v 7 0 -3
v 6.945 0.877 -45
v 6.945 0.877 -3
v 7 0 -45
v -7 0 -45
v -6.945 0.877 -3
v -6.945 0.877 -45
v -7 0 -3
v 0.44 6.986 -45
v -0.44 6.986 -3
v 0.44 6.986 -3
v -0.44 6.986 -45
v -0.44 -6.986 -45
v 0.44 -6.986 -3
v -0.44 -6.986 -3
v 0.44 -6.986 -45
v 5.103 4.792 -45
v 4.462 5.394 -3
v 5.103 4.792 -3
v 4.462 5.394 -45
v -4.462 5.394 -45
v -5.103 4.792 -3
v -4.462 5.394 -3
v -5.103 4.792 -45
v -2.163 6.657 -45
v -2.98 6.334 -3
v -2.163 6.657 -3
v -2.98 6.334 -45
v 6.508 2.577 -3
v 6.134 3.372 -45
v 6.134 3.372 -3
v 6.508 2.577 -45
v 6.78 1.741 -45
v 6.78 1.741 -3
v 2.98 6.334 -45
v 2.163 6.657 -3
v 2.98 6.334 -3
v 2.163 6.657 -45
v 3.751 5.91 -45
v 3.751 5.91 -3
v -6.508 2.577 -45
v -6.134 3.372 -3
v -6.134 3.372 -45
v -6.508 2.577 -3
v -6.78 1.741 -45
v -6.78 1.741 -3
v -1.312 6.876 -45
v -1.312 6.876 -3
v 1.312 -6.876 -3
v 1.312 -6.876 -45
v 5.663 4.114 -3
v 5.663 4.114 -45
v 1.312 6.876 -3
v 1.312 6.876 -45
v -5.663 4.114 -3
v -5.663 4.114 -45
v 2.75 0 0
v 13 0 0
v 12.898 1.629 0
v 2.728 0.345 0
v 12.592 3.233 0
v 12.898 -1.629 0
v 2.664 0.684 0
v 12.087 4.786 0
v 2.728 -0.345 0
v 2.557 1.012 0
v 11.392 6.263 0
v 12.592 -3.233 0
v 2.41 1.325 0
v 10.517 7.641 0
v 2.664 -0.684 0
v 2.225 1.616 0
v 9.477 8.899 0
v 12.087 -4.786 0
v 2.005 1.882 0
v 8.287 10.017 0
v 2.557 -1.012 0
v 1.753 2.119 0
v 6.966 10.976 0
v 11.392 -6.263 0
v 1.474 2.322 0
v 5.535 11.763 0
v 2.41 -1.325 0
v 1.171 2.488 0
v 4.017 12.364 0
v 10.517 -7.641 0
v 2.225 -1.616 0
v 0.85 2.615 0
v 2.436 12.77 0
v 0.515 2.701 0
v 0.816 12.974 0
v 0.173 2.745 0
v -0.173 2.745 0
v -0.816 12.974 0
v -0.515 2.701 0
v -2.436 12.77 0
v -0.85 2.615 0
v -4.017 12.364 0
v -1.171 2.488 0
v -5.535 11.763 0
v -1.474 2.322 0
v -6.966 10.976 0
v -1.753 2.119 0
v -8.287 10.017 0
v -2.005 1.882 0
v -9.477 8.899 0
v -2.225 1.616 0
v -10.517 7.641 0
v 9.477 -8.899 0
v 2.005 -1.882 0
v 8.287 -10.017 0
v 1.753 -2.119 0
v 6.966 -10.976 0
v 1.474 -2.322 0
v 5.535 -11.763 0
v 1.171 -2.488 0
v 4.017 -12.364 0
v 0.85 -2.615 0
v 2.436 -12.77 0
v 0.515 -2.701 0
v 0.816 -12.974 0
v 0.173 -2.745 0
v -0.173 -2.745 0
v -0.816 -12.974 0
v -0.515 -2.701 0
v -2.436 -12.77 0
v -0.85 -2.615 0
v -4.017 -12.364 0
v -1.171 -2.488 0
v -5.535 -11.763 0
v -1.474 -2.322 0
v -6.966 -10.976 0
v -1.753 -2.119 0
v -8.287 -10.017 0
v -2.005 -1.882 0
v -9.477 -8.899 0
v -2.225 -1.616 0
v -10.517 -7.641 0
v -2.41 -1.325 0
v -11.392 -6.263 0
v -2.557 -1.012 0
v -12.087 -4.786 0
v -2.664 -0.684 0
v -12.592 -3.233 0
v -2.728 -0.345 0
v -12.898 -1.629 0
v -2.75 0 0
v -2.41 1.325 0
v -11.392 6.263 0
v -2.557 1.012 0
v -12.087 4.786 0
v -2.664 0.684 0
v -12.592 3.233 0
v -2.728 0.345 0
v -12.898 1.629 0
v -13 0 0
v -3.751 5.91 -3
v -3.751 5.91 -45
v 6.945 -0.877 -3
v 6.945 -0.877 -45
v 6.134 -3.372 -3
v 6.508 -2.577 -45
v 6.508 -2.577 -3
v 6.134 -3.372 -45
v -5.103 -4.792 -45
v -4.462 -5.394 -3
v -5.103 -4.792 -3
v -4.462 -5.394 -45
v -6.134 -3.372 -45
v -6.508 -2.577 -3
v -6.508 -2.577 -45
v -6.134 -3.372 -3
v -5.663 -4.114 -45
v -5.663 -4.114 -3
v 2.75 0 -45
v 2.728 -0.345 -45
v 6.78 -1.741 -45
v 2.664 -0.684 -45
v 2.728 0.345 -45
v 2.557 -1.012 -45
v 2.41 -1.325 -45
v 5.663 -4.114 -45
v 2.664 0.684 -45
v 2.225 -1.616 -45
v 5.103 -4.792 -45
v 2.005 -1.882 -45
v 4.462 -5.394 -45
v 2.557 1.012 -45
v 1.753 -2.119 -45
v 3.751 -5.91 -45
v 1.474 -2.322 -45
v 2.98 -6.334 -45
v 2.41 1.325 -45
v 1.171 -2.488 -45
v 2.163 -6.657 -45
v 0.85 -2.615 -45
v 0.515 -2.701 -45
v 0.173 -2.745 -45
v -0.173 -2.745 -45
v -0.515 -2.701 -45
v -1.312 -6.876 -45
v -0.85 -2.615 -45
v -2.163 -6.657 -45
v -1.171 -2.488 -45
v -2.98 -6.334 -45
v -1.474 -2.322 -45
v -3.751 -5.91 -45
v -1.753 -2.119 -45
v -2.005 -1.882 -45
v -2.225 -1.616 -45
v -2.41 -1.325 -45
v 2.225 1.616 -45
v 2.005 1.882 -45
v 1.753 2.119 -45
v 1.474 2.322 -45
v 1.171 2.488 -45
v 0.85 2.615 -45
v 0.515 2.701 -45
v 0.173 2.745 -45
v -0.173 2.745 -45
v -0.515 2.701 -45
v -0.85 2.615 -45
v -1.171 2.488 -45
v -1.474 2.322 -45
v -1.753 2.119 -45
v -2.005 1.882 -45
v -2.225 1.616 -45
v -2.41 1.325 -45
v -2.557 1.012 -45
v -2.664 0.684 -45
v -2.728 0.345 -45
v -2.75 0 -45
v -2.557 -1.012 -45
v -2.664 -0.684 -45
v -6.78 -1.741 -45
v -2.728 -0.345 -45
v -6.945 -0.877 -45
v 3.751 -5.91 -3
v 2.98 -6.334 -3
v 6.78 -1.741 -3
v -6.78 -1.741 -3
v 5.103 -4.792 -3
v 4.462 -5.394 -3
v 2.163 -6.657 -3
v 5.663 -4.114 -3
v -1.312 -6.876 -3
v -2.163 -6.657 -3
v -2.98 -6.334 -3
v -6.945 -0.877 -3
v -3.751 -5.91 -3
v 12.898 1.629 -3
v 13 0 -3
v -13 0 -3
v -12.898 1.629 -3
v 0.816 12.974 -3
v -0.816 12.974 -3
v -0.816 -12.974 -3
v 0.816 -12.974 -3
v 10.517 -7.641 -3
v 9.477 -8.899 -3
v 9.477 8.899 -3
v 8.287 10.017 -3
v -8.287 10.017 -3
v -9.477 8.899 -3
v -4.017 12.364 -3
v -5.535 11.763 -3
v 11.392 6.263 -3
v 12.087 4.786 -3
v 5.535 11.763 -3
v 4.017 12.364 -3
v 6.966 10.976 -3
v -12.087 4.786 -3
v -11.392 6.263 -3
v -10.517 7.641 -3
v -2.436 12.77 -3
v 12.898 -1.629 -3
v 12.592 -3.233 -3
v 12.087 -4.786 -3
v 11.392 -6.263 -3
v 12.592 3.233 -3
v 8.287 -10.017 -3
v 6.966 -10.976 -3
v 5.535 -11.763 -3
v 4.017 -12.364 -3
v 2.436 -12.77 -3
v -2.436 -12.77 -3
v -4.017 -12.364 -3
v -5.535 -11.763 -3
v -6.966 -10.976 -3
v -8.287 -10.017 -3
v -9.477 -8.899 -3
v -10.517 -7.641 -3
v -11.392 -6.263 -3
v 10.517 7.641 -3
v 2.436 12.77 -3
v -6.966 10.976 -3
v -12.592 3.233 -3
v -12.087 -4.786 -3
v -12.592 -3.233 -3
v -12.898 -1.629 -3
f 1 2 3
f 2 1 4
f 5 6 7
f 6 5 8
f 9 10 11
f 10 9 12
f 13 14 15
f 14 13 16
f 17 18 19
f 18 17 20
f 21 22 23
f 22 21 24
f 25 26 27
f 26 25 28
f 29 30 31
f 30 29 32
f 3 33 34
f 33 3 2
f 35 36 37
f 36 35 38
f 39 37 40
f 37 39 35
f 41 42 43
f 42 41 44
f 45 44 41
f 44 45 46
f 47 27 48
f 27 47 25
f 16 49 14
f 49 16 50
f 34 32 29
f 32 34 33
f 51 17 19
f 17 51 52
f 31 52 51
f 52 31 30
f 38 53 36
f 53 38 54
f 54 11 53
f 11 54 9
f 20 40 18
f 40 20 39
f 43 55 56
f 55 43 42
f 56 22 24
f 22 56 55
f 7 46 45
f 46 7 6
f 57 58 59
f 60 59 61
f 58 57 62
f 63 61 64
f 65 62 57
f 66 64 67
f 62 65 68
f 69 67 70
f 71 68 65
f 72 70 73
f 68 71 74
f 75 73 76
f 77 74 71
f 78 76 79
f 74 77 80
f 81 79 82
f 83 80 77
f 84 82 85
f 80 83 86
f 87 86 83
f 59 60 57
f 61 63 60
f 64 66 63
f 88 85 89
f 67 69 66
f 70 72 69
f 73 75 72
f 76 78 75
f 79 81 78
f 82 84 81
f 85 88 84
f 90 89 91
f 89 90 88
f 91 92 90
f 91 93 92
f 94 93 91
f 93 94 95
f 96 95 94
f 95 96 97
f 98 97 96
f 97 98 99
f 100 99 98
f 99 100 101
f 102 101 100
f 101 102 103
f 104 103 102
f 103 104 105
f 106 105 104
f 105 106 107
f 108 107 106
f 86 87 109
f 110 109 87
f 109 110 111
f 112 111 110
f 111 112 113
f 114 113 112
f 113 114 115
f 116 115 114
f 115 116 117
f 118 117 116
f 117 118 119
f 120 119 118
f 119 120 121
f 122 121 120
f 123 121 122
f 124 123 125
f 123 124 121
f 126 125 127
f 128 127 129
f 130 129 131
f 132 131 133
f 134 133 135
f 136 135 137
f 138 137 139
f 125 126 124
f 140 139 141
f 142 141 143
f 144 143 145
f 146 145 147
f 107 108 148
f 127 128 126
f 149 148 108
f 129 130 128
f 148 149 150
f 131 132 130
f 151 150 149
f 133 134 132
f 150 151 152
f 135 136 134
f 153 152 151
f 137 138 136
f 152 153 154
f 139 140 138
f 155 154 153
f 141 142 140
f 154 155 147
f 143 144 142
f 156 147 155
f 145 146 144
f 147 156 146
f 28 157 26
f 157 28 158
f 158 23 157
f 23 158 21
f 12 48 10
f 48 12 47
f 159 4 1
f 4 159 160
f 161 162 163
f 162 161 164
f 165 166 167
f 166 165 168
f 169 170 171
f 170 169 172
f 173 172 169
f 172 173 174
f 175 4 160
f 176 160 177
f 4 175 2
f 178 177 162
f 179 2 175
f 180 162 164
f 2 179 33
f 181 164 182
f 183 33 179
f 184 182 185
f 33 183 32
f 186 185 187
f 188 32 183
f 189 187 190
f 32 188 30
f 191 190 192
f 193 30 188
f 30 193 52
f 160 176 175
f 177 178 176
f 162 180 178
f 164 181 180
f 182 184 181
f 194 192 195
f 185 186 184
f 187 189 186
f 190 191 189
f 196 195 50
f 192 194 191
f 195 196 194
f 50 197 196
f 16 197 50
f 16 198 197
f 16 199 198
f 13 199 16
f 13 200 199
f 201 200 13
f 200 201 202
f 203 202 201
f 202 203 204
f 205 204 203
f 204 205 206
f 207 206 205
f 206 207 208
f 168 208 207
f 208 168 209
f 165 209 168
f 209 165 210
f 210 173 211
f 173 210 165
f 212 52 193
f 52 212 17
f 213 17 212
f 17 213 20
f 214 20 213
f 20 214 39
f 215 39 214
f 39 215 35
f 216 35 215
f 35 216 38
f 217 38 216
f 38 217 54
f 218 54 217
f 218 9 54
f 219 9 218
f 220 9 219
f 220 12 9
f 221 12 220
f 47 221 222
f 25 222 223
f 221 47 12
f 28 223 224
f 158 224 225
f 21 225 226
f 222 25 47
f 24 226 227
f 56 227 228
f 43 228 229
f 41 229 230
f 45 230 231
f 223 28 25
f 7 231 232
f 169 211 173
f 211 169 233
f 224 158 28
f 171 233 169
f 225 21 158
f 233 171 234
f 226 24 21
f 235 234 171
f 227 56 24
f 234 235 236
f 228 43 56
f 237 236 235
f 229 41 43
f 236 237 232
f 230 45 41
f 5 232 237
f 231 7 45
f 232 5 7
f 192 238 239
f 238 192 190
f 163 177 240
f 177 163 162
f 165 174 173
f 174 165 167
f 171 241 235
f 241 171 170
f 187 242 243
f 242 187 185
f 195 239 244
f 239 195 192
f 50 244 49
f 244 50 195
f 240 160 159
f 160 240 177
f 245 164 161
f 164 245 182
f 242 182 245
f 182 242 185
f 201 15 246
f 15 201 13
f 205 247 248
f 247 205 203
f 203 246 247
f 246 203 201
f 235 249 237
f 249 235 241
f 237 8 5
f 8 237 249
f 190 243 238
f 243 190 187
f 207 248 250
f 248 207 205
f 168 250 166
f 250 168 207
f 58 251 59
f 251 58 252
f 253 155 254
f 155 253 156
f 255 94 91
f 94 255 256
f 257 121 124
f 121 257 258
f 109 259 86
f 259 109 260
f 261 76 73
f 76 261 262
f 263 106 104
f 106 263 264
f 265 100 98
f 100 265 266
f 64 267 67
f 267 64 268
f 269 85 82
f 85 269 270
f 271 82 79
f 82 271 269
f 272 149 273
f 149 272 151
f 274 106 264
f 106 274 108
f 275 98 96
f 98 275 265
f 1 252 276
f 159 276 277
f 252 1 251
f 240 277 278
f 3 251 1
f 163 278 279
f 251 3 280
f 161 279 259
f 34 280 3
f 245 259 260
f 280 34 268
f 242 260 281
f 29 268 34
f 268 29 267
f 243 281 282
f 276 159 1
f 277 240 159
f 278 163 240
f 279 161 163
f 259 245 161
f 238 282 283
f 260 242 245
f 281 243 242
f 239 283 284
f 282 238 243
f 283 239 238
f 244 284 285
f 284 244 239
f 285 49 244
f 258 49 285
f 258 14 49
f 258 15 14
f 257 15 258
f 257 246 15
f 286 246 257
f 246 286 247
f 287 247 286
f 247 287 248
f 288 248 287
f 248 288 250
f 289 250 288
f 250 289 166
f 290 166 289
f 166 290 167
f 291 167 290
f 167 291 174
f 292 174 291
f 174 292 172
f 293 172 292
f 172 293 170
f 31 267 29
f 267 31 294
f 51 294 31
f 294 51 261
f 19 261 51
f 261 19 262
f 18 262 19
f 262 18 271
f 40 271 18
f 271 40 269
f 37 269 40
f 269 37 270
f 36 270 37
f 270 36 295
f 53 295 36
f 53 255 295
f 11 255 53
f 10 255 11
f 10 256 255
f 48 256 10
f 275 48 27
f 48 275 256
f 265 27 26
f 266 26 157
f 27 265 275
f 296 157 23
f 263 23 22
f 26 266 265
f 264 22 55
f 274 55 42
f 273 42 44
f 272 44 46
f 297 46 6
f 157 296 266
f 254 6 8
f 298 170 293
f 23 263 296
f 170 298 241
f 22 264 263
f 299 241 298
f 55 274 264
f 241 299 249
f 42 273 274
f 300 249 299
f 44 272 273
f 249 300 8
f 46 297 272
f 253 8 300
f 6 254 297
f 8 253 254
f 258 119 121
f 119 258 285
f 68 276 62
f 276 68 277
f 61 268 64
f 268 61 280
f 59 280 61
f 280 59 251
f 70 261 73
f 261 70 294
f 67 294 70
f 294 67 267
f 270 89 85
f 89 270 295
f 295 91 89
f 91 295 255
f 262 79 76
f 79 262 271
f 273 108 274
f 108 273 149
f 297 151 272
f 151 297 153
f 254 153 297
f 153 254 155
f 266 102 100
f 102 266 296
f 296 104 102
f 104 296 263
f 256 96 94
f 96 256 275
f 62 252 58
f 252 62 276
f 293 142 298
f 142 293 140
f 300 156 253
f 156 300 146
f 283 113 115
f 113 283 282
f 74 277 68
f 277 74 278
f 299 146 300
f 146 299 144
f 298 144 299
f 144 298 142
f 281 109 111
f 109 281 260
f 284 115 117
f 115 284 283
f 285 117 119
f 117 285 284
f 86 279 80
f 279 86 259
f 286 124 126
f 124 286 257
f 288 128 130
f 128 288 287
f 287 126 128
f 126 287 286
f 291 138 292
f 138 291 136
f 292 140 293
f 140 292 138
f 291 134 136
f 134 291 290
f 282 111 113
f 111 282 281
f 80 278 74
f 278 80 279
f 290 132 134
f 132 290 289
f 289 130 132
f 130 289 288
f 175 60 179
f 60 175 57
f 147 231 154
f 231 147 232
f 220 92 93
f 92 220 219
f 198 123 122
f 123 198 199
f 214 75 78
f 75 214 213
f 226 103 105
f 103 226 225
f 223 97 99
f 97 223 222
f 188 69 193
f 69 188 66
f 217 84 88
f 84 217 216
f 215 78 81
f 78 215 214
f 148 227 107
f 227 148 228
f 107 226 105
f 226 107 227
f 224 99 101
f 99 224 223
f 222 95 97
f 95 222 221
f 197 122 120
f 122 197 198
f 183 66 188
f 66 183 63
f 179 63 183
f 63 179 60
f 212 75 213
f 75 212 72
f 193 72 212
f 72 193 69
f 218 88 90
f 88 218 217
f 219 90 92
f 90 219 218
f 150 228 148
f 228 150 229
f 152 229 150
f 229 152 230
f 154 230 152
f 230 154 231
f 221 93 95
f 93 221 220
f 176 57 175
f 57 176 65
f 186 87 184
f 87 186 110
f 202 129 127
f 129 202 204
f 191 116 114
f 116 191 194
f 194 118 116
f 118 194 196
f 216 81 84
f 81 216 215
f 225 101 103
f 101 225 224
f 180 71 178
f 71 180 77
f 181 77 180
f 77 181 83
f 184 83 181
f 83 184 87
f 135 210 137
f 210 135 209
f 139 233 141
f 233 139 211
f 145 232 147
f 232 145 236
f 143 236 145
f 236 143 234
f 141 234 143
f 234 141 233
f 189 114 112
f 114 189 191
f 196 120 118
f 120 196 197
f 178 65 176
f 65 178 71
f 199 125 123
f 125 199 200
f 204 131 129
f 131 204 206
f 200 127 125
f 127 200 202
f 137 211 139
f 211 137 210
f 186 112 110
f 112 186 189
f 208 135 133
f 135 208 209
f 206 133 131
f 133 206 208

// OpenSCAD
$fn = 50;


difference() {
	union() {
		translate(v = [0, 0, -45.0000000000]) {
			cylinder(h = 45, r = 7.0000000000);
		}
		translate(v = [0, 0, -3.0000000000]) {
			cylinder(h = 3, r = 13.0000000000);
		}
	}
	union() {
		#translate(v = [0, 0, -45]) {
			cylinder(h = 45, r = 2.7500000000);
		}
	}
}
